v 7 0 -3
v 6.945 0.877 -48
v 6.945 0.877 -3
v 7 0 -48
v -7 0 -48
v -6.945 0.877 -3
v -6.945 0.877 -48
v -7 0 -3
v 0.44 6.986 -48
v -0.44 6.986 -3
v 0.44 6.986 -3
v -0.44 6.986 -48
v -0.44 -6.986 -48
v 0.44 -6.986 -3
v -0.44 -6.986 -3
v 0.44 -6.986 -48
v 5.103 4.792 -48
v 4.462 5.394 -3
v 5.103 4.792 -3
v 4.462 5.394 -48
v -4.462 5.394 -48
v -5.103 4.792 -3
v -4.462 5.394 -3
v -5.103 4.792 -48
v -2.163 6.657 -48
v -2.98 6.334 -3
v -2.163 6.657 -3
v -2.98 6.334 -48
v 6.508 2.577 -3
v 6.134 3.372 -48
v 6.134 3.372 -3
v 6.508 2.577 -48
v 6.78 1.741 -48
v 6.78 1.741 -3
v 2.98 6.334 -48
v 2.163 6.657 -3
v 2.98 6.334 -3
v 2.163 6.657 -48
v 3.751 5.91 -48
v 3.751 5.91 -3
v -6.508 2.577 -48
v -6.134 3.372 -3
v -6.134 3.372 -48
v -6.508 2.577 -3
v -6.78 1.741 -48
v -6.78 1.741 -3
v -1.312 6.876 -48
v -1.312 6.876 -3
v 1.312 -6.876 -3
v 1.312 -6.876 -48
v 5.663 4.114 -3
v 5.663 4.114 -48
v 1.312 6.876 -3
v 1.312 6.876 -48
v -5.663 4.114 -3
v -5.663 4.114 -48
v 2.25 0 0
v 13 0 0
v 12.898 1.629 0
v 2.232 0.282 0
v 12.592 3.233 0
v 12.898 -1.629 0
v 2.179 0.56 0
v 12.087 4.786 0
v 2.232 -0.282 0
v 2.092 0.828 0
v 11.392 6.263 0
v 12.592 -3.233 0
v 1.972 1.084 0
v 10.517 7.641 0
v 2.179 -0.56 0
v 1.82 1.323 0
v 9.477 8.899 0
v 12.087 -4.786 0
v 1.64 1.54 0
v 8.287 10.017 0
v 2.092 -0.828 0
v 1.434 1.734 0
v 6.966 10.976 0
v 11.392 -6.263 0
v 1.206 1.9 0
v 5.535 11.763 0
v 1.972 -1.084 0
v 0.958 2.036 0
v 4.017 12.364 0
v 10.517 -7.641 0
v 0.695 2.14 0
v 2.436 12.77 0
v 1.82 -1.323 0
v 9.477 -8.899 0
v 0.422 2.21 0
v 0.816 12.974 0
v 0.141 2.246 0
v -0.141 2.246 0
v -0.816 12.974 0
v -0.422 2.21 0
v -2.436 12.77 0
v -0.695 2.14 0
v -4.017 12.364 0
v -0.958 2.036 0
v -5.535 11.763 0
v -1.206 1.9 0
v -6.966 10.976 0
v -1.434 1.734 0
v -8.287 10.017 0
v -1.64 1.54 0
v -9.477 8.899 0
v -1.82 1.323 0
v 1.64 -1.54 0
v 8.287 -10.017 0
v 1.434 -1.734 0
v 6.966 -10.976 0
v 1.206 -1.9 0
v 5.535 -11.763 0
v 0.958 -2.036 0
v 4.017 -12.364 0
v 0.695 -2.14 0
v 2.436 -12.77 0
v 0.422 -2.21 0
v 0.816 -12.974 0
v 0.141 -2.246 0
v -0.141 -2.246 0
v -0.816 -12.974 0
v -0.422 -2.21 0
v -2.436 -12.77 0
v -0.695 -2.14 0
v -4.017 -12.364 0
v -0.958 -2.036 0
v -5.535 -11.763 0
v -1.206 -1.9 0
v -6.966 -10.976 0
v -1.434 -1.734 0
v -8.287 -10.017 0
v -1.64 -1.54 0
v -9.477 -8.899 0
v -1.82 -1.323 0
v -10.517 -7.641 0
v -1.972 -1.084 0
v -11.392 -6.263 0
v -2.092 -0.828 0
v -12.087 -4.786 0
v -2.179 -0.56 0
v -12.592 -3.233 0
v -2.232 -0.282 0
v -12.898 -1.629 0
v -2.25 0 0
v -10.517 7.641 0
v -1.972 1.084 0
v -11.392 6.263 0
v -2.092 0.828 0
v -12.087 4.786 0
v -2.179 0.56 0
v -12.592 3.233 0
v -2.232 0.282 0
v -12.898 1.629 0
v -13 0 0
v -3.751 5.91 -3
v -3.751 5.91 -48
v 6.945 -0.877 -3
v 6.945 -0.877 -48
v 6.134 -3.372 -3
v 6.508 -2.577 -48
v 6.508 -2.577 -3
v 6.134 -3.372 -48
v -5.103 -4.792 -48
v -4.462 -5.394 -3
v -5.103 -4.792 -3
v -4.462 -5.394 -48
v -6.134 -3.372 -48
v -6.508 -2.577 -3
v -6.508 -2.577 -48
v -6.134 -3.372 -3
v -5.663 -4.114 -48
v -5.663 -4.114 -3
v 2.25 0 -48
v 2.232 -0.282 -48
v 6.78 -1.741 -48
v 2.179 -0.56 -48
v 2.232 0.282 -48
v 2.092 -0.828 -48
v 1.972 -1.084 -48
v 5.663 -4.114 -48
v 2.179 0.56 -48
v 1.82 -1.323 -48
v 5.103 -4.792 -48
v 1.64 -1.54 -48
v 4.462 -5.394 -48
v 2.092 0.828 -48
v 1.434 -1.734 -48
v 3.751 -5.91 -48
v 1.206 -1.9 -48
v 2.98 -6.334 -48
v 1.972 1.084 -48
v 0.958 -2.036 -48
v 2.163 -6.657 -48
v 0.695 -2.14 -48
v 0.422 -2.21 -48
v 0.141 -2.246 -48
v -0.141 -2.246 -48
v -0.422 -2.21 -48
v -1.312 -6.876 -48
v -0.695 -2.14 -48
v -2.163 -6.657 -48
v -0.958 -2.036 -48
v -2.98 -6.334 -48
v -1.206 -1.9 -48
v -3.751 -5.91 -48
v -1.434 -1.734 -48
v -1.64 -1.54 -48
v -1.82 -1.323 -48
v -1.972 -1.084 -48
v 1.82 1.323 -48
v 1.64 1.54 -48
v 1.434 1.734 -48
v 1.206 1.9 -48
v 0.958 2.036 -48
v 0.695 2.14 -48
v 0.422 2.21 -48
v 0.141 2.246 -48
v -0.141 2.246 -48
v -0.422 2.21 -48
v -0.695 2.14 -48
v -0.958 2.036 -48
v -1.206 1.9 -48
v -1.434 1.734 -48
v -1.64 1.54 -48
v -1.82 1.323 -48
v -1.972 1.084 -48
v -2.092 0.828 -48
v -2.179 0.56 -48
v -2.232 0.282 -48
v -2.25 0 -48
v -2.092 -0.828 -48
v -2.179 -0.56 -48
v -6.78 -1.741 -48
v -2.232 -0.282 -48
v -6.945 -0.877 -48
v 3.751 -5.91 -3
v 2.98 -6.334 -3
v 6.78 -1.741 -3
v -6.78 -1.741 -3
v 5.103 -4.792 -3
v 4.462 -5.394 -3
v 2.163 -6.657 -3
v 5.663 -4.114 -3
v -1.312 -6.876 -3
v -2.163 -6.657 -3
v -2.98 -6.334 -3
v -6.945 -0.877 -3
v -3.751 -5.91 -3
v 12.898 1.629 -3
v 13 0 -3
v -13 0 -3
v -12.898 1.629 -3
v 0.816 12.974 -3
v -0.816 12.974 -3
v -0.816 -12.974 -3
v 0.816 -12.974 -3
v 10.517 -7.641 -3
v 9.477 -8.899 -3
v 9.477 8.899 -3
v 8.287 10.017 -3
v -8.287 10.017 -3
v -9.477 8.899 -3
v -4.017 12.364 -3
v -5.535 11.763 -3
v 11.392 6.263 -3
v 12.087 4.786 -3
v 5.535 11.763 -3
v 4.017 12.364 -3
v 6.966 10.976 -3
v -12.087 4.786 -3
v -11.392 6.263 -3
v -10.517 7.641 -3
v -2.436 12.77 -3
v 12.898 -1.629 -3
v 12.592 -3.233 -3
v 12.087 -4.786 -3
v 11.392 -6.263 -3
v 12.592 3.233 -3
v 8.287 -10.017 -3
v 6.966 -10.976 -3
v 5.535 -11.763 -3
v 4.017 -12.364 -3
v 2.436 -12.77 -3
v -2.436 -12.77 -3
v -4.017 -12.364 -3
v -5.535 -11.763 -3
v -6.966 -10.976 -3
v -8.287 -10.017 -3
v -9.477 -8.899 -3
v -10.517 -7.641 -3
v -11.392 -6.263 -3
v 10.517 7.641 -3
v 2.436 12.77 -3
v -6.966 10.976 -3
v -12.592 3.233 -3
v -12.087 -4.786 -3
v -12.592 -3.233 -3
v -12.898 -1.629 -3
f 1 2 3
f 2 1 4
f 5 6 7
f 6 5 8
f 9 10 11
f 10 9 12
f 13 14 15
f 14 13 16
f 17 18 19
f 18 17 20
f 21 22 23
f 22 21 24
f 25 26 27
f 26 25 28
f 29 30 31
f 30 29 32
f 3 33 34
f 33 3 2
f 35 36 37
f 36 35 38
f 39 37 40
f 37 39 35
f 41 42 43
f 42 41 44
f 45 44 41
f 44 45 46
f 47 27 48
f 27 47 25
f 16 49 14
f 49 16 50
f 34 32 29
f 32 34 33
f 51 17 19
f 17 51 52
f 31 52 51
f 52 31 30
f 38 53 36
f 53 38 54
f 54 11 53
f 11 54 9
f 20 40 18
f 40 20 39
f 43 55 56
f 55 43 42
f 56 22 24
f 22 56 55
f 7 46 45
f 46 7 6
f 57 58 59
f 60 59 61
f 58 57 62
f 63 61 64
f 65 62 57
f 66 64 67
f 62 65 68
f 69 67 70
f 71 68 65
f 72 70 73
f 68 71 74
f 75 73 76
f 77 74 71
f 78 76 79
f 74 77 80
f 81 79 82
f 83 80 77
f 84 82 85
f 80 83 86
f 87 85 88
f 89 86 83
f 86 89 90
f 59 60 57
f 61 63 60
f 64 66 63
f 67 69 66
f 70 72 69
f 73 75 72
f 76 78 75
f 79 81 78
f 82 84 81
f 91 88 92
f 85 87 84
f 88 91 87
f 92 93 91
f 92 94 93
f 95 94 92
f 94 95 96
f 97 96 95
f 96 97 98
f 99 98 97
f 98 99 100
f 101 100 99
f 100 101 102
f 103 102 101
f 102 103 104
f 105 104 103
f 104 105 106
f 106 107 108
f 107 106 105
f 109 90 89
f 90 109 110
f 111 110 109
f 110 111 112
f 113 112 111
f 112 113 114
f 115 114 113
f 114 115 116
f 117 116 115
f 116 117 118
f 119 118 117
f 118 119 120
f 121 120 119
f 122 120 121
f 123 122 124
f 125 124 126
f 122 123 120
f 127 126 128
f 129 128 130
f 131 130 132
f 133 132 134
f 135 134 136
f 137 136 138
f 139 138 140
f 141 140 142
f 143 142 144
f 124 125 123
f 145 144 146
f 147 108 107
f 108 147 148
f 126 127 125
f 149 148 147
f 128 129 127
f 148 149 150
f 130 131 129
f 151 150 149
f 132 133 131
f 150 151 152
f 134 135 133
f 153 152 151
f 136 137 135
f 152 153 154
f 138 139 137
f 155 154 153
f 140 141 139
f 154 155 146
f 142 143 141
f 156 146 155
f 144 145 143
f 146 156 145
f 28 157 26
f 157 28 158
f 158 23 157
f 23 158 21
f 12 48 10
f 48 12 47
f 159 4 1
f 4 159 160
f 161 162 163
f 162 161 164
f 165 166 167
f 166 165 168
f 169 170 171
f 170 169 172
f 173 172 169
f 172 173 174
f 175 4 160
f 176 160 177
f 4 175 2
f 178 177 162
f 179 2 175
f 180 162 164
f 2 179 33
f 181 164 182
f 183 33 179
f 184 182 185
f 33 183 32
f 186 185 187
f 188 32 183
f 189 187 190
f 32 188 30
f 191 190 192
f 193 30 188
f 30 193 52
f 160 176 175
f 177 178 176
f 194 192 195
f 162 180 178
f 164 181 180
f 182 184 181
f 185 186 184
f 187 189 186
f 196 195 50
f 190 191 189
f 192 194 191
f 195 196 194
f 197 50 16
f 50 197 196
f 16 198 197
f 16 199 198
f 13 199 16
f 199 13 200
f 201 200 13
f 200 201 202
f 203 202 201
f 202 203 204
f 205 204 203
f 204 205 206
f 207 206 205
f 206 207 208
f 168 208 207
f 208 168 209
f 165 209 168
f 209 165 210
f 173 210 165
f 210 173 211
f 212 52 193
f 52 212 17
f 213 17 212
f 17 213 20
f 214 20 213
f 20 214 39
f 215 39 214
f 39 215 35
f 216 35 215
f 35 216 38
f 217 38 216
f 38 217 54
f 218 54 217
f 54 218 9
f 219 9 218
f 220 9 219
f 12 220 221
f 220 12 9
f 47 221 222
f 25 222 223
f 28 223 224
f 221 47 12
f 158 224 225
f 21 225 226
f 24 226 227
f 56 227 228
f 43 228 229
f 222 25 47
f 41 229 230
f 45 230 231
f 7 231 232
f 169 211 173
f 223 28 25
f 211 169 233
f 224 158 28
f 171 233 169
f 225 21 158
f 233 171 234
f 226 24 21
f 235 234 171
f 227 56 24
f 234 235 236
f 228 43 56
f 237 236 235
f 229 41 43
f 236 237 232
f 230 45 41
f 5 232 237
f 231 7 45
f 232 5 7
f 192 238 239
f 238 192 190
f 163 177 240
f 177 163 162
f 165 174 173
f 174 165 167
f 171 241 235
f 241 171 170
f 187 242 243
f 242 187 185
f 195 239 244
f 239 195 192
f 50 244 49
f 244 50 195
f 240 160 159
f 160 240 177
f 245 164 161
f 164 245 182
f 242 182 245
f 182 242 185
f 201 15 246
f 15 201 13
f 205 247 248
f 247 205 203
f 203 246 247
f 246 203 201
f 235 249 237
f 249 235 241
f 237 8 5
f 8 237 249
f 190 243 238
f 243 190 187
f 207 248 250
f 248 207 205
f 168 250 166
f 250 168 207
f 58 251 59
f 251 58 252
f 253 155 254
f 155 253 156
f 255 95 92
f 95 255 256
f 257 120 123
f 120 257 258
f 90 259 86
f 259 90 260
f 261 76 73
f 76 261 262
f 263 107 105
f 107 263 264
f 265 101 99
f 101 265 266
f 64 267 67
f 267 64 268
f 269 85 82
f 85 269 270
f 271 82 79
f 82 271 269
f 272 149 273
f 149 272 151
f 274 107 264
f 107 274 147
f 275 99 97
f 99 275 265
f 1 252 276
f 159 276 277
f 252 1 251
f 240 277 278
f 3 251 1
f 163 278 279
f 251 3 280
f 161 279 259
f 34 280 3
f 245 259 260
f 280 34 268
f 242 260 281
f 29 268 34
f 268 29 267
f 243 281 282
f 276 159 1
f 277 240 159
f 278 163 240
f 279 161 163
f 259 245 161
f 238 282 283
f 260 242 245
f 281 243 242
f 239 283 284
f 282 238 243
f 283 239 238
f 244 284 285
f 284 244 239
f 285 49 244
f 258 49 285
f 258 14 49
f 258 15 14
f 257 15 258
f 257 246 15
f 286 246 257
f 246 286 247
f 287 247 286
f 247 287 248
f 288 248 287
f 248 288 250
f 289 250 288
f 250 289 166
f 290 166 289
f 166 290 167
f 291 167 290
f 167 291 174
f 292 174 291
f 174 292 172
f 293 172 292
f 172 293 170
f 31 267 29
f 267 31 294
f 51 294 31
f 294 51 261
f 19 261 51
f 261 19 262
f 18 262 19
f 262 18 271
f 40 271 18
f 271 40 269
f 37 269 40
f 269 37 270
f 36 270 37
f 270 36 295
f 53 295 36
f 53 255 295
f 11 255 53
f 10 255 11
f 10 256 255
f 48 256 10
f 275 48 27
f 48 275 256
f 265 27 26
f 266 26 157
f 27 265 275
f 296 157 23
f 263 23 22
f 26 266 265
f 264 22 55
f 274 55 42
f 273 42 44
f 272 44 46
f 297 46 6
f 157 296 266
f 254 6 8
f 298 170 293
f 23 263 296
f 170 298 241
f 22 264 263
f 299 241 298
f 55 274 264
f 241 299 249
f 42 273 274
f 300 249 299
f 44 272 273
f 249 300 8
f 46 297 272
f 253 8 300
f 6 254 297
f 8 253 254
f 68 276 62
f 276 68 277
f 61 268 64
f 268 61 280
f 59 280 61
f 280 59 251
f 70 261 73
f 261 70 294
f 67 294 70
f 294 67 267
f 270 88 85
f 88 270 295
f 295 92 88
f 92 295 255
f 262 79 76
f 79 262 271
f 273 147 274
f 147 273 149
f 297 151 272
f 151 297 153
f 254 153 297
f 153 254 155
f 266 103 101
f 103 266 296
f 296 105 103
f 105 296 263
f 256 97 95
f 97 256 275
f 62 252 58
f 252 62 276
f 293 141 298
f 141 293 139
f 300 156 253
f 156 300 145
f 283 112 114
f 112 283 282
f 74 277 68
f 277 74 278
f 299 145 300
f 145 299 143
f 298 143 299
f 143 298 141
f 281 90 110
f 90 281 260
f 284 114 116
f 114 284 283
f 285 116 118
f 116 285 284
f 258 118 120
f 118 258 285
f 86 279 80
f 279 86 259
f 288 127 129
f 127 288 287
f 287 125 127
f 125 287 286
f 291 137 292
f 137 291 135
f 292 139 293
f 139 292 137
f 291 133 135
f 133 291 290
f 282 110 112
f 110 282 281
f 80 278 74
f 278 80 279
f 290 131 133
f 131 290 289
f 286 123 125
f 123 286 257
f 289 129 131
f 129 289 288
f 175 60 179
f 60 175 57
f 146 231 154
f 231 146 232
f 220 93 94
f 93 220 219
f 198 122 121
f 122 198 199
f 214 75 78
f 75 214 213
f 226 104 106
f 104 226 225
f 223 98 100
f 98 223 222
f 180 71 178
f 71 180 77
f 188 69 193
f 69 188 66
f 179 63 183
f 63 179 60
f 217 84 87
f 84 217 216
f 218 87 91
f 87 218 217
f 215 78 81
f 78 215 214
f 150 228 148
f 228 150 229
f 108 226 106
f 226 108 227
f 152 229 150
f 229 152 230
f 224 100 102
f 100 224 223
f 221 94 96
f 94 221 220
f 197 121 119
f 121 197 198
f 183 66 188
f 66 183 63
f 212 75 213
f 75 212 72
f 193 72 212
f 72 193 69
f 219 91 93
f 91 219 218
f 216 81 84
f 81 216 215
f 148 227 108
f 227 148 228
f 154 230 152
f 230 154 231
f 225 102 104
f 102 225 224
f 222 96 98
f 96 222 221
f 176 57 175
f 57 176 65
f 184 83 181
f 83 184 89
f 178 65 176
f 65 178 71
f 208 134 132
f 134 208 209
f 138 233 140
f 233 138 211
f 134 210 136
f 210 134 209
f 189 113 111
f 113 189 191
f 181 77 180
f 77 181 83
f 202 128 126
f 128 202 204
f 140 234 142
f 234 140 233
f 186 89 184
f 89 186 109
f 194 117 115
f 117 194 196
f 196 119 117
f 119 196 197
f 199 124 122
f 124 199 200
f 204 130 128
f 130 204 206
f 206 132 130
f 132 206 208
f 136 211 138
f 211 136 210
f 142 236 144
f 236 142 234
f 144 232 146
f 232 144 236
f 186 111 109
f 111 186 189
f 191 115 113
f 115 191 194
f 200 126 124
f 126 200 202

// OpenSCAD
$fn = 50;


difference() {
	union() {
		translate(v = [0, 0, -48.0000000000]) {
			cylinder(h = 48, r = 7.0000000000);
		}
		translate(v = [0, 0, -3.0000000000]) {
			cylinder(h = 3, r = 13.0000000000);
		}
	}
	union() {
		#translate(v = [0, 0, -48]) {
			cylinder(h = 48, r = 2.2500000000);
		}
	}
}
